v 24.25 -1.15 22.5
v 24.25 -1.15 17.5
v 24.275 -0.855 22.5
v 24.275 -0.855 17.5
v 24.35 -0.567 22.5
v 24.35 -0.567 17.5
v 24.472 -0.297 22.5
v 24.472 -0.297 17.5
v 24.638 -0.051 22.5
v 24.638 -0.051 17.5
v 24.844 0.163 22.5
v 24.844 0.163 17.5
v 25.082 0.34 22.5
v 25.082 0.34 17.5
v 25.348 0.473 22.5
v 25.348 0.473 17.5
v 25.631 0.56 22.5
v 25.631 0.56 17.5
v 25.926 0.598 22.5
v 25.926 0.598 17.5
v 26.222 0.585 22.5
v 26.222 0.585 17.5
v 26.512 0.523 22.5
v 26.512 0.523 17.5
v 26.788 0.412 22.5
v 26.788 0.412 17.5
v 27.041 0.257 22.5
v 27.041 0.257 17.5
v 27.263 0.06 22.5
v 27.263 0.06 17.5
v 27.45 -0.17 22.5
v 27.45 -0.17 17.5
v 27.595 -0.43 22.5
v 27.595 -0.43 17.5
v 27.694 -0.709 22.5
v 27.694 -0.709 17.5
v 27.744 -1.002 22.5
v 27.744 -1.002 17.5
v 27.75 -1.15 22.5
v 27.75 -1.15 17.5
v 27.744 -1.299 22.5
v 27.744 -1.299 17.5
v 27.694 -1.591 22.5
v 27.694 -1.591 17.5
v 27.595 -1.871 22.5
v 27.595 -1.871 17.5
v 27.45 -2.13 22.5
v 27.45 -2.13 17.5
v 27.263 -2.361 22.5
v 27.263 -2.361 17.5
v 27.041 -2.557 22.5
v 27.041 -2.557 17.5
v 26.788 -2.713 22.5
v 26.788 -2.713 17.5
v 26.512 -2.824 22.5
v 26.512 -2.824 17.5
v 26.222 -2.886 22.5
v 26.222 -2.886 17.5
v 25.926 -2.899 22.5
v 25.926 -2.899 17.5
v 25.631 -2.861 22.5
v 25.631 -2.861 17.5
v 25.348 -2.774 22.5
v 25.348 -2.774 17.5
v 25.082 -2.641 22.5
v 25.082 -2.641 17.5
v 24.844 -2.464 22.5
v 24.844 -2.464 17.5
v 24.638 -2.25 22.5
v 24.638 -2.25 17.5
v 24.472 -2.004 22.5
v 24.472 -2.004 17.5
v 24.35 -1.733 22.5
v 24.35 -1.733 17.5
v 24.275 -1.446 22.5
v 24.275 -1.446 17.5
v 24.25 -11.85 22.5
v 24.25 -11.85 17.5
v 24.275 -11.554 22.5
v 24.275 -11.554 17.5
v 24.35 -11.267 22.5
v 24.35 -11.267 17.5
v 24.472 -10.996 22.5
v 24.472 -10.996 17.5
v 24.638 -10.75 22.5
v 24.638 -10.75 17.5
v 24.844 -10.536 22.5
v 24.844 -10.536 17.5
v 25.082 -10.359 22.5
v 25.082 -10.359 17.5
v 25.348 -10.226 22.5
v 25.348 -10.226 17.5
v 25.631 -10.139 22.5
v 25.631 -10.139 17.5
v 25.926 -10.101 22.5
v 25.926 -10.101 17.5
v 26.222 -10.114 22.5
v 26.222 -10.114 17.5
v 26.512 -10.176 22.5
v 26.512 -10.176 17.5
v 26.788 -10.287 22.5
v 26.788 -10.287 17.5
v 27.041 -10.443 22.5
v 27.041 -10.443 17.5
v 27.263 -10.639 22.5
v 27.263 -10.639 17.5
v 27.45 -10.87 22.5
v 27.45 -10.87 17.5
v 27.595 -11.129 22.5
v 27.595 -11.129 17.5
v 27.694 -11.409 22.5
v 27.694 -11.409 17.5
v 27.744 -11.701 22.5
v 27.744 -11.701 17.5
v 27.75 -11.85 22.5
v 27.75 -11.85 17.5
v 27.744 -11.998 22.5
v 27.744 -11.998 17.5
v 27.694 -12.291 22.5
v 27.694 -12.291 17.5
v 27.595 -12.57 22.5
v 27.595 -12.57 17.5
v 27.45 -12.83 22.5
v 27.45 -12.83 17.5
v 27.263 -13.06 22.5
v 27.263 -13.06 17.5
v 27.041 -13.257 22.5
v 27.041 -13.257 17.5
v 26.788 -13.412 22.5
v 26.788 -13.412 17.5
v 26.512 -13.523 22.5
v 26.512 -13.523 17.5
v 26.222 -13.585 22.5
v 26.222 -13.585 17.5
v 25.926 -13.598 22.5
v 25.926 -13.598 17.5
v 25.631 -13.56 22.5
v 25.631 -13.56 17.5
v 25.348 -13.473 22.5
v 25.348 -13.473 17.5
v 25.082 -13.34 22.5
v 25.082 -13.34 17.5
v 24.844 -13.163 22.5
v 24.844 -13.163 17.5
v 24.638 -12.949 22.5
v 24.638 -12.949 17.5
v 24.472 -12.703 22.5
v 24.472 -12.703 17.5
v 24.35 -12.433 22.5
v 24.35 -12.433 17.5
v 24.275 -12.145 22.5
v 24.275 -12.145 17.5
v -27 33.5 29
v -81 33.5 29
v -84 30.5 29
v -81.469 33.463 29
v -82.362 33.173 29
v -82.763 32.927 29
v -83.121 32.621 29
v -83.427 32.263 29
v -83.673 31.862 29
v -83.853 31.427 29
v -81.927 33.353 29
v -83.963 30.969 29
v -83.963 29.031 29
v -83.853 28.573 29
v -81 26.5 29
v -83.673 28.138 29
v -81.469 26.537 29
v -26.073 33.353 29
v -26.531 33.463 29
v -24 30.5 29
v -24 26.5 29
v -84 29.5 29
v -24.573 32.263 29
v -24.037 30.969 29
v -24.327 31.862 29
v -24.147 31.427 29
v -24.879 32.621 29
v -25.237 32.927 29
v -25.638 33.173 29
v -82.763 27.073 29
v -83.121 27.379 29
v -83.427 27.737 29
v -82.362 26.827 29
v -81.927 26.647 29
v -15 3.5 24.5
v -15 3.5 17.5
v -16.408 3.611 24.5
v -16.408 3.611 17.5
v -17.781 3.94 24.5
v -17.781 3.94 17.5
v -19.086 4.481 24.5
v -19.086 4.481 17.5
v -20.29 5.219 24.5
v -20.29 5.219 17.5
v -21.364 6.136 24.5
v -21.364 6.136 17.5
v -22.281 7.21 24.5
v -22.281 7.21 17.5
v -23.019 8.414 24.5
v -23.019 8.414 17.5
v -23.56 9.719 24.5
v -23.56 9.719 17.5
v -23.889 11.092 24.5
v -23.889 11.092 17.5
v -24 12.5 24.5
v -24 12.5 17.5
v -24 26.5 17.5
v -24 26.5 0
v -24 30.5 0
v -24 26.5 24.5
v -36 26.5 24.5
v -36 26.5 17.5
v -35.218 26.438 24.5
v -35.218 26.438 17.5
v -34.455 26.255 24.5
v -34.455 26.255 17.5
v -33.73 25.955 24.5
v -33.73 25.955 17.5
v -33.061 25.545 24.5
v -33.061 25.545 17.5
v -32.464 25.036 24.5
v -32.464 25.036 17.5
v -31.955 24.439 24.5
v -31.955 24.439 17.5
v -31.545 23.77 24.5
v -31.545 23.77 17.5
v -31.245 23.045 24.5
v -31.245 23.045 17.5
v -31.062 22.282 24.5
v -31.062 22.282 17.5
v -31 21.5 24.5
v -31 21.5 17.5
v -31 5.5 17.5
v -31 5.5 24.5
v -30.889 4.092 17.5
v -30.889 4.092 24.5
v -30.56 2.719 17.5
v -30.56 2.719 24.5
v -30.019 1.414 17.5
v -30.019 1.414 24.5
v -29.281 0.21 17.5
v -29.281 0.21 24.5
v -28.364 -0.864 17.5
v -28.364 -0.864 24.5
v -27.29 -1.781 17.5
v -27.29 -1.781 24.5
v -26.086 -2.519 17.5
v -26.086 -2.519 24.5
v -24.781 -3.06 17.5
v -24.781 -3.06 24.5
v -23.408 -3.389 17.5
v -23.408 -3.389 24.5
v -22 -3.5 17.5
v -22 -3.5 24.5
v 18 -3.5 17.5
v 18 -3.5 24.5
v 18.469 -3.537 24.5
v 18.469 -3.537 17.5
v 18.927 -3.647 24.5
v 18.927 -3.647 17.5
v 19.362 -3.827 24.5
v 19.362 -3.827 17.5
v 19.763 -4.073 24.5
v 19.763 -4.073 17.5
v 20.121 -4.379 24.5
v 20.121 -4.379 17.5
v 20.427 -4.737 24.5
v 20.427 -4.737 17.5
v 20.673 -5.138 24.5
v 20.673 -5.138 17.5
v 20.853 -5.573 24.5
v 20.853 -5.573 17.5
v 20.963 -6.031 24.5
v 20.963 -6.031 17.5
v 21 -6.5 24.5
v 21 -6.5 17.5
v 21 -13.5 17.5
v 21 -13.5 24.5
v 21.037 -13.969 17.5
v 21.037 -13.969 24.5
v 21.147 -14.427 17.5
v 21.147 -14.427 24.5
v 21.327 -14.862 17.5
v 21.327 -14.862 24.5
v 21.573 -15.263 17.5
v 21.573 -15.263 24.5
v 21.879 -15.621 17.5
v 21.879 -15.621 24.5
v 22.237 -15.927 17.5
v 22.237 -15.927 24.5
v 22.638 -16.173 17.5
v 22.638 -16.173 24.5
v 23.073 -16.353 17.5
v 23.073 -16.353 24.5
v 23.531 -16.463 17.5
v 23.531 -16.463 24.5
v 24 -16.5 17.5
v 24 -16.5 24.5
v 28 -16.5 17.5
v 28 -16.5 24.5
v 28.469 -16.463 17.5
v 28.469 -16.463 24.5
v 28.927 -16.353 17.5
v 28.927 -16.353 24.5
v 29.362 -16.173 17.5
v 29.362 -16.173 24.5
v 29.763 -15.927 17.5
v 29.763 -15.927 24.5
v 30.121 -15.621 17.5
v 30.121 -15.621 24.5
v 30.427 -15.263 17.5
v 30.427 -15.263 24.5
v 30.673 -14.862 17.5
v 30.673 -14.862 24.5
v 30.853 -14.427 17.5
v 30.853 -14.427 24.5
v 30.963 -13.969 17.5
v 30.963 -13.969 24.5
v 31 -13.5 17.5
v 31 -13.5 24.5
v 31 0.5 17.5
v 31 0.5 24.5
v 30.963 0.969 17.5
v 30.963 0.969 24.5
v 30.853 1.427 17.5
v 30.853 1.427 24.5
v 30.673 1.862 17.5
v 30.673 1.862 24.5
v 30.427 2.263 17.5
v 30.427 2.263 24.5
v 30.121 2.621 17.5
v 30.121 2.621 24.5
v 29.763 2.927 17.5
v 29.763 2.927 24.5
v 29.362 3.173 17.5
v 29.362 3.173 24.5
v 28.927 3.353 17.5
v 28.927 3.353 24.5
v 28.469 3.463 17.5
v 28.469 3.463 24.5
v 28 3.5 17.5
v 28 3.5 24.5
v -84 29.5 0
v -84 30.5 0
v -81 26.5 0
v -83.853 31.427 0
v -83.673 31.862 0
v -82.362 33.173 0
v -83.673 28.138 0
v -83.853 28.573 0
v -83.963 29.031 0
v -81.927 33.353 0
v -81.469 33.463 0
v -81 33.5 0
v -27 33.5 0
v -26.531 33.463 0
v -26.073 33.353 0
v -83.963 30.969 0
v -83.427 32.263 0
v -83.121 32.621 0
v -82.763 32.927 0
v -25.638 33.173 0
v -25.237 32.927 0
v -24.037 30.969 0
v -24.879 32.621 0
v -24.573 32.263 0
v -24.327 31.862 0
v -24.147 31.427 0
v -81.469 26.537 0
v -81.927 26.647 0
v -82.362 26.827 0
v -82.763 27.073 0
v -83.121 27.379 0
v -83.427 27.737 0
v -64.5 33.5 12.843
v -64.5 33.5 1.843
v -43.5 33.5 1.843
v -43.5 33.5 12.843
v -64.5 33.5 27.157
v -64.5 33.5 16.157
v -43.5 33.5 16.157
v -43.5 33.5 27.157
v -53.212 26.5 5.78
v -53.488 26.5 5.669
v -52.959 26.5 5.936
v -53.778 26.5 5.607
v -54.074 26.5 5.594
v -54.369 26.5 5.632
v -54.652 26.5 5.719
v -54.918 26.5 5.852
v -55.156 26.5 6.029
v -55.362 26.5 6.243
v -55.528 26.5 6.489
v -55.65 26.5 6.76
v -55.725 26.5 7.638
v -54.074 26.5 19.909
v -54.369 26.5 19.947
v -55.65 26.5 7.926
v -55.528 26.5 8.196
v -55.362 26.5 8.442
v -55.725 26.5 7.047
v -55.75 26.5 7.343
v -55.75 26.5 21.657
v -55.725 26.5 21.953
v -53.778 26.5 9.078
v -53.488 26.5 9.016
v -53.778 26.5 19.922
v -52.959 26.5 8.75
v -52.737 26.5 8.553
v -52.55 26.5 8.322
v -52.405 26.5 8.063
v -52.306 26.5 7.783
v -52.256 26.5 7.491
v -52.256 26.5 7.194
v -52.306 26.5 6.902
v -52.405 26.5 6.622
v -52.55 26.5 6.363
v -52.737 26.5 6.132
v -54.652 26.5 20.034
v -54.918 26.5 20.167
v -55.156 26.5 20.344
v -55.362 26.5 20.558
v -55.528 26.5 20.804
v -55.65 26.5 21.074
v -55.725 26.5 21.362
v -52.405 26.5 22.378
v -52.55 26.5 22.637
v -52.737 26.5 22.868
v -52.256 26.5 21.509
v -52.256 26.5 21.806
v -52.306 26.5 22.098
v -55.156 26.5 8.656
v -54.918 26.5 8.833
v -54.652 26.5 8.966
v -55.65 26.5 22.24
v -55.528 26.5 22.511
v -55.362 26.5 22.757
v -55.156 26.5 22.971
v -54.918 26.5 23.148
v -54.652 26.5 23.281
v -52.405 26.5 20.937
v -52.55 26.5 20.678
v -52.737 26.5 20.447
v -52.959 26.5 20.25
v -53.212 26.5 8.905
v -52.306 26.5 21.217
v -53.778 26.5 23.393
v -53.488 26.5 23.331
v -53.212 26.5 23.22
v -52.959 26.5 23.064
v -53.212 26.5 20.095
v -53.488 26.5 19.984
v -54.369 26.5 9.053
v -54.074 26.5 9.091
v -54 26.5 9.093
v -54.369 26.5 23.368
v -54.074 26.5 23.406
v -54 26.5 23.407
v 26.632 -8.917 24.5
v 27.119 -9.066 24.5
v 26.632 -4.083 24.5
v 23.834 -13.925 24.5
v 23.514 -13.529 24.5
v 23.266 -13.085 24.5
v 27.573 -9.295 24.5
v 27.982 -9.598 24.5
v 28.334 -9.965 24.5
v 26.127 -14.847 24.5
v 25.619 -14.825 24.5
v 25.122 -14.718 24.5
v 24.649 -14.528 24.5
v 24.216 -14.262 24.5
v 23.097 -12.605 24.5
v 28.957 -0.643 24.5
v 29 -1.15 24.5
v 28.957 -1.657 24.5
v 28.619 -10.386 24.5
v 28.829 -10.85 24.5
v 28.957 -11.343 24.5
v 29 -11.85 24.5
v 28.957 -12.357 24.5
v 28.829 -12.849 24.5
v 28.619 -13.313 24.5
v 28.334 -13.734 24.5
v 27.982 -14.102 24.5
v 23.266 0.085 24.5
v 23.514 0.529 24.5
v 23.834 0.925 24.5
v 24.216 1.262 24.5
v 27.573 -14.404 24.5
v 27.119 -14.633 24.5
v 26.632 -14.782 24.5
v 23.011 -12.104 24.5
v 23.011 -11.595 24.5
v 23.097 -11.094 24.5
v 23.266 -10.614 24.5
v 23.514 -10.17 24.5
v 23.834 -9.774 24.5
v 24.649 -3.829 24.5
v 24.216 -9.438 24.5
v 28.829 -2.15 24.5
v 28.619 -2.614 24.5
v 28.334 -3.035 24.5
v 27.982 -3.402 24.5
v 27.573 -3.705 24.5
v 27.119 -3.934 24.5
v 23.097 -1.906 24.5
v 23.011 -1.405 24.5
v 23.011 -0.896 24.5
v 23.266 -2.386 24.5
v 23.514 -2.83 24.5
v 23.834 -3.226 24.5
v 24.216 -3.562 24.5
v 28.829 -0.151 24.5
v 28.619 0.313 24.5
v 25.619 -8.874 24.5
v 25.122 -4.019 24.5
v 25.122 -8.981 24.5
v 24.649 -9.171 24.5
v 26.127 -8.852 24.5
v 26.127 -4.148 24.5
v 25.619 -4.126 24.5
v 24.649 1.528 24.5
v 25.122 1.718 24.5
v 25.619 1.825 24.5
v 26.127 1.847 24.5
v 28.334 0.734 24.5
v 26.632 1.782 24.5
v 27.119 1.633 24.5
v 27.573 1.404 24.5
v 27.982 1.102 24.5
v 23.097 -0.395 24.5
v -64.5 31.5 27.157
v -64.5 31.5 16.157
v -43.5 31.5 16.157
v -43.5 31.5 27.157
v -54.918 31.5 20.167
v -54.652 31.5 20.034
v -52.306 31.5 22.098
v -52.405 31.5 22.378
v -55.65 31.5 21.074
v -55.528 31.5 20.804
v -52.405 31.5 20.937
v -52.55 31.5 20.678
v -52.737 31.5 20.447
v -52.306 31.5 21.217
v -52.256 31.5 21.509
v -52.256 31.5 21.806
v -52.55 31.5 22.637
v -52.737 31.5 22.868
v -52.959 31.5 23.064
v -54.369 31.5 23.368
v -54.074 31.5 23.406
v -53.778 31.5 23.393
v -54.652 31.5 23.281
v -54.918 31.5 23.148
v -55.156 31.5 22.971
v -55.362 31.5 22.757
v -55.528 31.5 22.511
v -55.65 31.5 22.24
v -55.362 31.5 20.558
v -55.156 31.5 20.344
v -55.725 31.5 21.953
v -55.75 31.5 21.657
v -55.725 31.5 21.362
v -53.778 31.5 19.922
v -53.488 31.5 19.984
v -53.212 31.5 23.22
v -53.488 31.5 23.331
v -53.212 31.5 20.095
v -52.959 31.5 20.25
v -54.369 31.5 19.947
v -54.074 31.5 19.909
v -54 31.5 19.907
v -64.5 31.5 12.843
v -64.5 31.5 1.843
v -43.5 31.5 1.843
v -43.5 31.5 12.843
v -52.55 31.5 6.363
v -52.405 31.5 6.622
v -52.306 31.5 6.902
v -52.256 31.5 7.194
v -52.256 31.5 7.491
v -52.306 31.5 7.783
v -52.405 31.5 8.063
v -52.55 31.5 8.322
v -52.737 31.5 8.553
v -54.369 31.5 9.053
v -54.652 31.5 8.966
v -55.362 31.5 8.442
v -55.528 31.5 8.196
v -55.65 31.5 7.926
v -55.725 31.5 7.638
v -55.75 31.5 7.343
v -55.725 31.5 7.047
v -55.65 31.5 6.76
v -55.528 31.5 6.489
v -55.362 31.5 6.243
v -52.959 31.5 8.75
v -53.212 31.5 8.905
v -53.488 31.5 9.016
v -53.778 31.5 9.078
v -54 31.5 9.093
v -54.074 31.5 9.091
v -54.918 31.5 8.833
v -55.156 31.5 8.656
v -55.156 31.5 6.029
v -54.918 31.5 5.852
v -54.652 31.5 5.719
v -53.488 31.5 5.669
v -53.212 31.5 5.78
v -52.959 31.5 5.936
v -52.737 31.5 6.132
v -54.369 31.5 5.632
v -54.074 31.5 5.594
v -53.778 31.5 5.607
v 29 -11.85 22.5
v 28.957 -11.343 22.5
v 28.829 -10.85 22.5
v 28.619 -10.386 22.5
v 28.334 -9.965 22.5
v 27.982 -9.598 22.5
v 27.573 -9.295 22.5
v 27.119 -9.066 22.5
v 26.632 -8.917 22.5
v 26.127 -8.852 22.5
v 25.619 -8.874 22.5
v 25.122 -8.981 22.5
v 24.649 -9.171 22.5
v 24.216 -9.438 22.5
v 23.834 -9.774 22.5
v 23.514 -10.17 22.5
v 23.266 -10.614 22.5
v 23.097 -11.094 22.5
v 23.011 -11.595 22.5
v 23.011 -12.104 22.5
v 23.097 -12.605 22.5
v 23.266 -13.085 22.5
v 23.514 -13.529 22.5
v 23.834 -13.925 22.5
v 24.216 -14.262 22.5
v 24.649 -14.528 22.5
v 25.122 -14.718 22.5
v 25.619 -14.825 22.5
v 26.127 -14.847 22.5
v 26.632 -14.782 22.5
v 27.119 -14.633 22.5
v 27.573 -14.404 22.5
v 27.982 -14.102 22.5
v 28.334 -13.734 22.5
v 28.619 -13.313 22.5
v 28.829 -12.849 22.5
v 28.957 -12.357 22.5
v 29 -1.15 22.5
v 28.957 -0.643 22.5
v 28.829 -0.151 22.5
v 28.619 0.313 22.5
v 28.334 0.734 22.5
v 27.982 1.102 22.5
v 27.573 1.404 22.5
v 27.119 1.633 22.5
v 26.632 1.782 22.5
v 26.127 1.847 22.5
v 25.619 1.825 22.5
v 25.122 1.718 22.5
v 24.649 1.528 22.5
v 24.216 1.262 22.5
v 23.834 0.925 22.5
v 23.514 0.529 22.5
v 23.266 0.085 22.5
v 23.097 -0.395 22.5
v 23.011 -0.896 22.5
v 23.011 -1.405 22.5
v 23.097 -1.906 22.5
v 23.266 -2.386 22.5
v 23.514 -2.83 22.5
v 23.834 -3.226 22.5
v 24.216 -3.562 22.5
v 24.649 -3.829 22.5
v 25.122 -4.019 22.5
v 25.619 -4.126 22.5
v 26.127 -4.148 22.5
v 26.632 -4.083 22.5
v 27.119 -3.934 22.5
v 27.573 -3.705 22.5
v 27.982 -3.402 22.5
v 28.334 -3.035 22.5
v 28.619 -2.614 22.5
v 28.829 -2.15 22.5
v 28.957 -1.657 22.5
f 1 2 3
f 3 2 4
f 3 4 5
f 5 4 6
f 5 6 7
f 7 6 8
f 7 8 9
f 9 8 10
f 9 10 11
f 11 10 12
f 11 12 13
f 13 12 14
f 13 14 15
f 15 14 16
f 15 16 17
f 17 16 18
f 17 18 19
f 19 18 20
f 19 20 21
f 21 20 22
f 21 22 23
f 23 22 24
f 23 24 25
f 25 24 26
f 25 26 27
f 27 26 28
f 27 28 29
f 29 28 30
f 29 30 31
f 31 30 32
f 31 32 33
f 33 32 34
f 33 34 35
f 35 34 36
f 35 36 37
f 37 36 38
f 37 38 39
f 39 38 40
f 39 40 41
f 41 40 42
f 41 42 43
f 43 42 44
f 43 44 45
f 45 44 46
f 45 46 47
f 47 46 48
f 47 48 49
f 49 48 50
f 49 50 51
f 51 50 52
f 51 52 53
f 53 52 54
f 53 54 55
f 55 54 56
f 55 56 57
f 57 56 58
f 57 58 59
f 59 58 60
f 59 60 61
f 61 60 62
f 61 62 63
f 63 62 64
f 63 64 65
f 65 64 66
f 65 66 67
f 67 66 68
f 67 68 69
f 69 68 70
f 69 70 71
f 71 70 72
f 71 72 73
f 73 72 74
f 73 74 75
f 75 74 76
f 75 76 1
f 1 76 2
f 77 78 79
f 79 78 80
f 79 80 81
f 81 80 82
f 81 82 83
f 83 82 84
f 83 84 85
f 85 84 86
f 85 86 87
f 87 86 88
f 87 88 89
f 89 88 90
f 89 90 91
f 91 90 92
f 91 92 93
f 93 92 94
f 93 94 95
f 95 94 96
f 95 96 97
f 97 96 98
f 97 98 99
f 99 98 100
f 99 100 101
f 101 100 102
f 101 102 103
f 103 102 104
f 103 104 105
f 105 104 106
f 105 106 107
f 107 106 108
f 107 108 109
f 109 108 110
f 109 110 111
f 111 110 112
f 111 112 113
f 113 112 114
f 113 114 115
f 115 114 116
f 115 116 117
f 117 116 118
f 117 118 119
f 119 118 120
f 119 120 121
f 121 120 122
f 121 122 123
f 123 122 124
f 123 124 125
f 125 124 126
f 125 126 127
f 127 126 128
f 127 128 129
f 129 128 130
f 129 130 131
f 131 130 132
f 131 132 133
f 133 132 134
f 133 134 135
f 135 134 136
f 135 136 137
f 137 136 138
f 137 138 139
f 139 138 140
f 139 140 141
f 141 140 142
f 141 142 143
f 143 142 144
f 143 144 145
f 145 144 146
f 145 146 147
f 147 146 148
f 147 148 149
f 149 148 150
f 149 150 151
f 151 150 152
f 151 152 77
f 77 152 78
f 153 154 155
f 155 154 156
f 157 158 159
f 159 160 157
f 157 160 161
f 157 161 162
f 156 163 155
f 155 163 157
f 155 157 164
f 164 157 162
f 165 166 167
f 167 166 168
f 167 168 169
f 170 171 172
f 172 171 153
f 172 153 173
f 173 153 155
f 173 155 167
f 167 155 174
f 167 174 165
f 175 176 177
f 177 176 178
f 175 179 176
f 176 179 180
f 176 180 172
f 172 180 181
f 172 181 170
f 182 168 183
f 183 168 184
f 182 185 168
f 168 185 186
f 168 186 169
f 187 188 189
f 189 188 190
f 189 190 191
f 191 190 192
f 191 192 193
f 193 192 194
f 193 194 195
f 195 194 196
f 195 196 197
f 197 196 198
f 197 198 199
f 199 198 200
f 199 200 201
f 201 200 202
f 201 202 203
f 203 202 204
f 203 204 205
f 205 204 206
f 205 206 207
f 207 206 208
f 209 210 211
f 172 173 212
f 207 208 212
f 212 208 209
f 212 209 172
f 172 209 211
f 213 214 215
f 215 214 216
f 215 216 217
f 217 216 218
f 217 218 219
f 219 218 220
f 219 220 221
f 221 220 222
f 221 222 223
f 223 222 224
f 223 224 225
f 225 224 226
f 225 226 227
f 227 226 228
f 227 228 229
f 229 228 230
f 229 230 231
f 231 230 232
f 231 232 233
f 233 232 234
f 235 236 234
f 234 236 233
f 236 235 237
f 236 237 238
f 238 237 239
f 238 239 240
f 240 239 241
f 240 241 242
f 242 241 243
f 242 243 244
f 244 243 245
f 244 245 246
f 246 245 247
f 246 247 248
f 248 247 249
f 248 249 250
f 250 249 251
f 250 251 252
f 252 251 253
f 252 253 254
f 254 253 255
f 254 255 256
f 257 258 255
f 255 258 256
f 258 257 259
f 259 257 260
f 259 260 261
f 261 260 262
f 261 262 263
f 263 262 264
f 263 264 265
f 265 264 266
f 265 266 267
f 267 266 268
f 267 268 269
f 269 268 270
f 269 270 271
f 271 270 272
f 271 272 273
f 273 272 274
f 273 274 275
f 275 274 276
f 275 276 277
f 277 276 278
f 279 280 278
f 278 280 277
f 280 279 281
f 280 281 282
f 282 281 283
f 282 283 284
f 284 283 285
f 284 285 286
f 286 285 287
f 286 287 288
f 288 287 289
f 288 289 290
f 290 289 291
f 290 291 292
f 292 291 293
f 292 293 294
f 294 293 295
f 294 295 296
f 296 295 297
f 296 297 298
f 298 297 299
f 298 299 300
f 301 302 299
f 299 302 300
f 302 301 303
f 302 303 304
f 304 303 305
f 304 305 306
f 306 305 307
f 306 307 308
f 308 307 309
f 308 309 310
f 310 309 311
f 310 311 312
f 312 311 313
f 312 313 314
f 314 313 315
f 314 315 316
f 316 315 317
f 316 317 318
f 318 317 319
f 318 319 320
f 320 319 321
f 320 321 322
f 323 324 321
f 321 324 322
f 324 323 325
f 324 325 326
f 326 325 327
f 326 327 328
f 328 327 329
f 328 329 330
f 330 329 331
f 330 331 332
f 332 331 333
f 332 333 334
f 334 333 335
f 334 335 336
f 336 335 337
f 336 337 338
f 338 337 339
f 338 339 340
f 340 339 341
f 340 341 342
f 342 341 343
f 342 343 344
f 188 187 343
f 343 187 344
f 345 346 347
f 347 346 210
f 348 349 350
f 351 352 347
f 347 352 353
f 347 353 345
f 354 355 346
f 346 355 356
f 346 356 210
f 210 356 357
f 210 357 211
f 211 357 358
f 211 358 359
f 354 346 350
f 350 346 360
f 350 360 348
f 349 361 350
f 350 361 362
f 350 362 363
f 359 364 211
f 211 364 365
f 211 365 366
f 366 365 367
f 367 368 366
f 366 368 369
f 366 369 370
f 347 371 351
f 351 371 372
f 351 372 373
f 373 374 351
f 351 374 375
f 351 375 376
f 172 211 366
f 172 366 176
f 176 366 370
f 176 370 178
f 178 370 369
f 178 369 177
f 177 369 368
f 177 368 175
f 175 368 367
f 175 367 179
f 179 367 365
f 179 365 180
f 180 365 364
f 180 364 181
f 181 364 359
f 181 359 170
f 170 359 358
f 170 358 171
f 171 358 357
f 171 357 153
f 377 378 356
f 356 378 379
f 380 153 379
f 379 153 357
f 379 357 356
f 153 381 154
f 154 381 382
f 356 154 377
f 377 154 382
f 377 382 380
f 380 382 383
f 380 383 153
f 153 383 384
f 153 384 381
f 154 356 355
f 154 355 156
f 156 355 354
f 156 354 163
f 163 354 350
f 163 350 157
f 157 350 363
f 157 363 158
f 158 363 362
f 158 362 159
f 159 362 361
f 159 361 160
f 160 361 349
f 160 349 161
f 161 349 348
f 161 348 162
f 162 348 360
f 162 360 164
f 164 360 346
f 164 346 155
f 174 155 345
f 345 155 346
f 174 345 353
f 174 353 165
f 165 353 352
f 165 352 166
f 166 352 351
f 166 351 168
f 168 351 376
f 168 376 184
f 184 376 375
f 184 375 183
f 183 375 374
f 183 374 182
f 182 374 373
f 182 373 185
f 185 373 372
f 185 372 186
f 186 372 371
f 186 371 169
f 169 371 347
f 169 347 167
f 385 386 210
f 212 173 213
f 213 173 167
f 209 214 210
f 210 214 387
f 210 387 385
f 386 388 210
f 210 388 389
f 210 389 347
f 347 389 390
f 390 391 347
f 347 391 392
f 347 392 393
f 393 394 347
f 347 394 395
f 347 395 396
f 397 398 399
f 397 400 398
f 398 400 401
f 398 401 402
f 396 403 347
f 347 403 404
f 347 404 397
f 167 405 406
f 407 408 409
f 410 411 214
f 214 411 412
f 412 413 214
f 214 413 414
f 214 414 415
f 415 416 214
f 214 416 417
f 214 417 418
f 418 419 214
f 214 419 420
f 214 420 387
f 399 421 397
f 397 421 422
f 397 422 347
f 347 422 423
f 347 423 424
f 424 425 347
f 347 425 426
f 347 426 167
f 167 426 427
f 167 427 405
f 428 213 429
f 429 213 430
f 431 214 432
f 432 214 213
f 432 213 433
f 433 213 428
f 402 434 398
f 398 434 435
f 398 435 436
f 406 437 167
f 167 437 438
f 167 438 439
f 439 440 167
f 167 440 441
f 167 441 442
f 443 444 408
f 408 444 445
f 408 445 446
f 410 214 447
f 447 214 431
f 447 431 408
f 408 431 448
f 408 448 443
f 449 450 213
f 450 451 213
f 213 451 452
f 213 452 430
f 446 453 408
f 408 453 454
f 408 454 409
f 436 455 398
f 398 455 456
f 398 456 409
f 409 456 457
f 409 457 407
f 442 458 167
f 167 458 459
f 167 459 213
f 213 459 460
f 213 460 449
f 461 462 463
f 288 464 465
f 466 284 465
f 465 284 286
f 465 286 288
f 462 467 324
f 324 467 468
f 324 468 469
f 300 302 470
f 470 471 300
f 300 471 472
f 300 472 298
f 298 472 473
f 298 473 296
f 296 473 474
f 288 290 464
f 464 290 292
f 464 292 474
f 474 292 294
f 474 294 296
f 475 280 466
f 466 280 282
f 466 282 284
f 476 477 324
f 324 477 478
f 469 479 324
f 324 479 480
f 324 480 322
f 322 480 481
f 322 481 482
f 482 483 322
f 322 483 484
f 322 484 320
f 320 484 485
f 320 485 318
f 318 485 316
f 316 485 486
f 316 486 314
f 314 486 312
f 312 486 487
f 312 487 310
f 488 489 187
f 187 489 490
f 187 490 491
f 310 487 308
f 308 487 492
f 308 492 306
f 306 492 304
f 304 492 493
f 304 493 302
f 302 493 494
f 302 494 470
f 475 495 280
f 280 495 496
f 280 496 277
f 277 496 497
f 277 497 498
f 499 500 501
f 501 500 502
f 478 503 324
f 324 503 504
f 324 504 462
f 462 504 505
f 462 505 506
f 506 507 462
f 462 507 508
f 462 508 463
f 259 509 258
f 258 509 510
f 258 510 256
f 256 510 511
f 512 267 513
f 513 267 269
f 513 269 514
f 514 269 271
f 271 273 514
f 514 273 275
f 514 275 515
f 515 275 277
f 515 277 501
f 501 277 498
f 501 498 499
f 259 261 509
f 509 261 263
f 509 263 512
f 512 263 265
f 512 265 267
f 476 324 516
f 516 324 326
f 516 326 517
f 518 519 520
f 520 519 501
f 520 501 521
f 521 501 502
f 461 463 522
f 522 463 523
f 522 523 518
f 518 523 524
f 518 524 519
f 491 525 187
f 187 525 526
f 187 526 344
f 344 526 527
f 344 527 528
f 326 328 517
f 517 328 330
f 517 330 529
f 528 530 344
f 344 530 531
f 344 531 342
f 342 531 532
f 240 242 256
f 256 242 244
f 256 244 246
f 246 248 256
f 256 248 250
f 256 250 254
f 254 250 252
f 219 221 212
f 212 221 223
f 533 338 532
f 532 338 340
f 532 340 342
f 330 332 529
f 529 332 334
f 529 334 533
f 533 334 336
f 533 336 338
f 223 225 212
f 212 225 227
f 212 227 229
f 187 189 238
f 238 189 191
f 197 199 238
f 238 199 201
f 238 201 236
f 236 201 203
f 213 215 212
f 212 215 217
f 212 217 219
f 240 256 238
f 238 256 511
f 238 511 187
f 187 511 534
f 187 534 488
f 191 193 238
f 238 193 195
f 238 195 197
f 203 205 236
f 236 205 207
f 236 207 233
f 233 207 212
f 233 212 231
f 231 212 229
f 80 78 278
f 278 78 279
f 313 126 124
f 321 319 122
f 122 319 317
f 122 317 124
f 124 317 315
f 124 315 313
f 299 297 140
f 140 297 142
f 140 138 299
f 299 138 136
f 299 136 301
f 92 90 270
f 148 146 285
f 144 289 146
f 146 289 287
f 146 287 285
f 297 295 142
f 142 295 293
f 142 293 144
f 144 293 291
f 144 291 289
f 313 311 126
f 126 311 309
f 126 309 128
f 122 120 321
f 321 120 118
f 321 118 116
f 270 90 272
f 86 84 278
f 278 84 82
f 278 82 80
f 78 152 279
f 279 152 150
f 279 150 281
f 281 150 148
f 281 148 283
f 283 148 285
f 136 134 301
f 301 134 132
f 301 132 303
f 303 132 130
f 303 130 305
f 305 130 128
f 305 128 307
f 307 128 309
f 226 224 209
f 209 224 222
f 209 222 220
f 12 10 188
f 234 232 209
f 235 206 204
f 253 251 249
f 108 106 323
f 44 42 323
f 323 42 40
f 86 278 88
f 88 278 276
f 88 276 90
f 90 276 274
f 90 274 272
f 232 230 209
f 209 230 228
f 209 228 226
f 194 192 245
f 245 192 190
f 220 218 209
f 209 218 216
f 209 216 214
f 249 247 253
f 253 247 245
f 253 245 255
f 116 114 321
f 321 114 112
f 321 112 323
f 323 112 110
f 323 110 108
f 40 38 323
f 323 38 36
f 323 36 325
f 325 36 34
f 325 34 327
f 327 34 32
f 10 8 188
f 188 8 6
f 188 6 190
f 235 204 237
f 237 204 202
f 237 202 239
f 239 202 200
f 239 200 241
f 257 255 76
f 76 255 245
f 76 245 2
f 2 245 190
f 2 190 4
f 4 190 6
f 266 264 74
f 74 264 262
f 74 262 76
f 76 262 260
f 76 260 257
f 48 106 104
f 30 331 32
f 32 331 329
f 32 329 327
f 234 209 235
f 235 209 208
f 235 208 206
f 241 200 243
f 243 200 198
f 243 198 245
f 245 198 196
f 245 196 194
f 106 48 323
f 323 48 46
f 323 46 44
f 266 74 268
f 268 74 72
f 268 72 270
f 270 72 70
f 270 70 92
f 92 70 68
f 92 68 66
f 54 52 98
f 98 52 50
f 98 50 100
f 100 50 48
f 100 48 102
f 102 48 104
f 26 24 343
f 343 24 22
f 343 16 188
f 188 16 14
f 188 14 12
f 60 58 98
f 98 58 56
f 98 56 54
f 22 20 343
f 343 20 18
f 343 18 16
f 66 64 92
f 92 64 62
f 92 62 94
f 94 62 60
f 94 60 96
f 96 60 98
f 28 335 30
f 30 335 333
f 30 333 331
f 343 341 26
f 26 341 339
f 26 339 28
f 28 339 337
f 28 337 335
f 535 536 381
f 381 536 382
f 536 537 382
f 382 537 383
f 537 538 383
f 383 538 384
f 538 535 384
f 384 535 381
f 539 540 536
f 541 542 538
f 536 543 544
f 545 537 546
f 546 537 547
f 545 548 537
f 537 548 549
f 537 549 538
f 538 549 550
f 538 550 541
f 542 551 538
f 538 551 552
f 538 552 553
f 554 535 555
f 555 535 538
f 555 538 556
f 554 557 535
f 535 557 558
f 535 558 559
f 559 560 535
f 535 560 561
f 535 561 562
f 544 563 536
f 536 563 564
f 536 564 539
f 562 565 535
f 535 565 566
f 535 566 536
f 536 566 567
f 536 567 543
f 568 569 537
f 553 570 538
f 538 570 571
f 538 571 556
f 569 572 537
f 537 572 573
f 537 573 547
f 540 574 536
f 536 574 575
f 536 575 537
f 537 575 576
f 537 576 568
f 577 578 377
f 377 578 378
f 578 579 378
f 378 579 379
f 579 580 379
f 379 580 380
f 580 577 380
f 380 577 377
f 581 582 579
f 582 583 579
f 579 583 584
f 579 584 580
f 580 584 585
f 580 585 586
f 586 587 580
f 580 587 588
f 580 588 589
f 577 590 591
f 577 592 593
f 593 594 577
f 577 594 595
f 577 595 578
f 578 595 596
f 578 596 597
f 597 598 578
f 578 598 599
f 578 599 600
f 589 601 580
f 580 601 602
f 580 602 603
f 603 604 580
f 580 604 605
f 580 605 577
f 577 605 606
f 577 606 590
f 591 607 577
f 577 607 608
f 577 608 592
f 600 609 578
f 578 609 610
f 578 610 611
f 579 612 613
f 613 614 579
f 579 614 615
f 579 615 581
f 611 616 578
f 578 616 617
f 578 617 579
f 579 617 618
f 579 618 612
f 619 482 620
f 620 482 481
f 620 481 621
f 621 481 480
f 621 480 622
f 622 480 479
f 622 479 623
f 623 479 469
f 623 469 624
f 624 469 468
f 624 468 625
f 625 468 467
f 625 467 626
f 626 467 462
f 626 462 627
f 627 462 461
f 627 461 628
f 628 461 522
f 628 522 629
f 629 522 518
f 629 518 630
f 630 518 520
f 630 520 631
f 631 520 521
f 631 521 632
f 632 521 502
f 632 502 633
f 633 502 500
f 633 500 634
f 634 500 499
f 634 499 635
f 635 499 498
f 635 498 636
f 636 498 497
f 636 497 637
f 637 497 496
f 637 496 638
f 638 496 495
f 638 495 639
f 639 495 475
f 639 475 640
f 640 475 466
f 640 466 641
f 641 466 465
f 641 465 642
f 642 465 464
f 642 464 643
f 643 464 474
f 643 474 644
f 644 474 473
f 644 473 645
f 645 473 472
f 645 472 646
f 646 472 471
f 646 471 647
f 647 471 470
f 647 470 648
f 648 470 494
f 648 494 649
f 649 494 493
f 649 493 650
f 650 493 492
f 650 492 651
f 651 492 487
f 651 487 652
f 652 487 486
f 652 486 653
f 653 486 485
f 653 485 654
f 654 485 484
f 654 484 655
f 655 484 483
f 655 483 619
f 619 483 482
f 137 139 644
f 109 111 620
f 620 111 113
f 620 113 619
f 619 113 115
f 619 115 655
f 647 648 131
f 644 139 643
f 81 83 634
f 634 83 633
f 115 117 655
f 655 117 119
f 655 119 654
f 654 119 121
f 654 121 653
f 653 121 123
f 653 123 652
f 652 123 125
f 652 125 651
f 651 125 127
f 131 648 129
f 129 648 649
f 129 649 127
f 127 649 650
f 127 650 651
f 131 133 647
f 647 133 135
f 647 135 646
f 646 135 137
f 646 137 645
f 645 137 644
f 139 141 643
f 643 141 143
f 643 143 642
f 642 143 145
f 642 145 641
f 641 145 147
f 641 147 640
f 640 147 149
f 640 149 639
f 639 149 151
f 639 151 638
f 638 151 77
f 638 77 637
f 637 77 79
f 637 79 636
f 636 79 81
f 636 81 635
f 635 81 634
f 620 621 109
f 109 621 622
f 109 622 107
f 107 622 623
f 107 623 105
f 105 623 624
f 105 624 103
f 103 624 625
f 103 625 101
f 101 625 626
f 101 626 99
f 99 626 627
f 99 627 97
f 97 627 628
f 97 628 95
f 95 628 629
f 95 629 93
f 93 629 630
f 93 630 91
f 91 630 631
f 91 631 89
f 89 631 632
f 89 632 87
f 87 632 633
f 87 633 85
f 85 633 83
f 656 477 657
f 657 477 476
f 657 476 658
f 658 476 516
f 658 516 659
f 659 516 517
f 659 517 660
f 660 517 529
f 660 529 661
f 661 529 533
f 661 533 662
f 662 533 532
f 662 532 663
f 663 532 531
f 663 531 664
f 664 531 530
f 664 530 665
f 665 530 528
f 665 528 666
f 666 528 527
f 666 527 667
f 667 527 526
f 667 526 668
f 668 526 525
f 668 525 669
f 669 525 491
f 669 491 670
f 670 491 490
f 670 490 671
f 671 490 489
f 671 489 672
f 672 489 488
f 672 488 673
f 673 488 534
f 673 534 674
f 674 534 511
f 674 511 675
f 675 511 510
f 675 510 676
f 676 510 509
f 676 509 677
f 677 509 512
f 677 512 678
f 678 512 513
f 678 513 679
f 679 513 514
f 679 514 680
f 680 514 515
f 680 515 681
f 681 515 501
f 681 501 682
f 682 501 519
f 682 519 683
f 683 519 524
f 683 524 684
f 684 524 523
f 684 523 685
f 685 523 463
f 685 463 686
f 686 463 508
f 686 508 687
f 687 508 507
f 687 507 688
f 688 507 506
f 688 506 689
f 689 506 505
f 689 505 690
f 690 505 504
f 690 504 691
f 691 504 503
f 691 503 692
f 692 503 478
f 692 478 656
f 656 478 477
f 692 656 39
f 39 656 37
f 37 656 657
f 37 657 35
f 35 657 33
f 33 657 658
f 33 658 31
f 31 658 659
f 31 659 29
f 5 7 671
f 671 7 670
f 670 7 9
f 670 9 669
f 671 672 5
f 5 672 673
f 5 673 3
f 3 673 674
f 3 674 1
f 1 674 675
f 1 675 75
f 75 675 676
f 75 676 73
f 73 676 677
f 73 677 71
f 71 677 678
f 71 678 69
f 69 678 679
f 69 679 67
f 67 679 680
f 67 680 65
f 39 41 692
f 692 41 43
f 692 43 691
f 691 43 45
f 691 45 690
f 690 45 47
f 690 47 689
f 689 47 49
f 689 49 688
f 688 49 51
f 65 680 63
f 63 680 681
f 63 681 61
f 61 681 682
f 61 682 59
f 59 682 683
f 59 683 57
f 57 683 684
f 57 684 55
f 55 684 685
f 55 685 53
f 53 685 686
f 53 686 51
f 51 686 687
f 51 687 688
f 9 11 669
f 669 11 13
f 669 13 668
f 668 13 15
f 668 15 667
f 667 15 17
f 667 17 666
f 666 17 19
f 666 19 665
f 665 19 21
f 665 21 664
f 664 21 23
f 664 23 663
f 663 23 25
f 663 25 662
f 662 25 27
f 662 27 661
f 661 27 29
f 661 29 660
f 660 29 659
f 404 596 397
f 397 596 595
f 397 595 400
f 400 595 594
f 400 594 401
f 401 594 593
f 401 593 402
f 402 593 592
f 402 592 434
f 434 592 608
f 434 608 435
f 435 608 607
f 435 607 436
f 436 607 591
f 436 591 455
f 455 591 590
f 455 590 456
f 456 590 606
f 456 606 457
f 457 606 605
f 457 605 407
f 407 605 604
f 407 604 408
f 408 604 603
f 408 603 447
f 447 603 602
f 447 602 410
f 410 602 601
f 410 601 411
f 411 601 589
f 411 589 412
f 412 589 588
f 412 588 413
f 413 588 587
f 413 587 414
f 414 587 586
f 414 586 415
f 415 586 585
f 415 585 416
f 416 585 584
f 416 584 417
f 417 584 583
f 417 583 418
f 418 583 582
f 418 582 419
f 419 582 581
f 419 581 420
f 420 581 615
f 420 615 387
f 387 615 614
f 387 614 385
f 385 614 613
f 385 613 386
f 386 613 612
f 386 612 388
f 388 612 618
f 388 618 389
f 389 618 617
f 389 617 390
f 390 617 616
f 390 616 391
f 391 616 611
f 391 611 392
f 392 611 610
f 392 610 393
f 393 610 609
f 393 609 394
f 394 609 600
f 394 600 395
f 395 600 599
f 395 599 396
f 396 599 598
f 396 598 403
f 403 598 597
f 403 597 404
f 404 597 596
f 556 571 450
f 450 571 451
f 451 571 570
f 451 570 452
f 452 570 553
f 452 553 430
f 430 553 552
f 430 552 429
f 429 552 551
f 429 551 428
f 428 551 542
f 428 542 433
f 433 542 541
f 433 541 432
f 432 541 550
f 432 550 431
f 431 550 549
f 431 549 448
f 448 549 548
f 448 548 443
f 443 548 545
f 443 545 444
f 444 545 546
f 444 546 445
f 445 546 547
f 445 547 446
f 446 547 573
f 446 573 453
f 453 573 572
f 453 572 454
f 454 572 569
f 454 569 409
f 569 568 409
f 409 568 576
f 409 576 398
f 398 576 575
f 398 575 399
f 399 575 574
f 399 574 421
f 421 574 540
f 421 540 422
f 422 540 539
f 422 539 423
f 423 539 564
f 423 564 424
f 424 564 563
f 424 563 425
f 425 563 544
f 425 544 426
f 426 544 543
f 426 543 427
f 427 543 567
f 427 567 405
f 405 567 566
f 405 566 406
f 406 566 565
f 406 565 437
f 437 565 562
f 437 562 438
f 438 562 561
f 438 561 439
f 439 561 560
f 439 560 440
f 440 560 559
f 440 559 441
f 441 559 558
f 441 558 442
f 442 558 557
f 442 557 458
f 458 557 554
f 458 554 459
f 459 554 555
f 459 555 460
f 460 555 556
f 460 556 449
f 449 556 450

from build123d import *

# Parameters (mm, degrees)
SKIZZE1_R                       = 1.75
AUFSATZ_LINEAR_AUSTRAGEN1_DEPTH = 29
SKIZZE2_W                       = 95.177468056
SKIZZE2_H                       = 43
SCHNITT_LINEAR_AUSTRAGEN1_DEPTH = 29
SKIZZE5_W                       = 102.378587485
SKIZZE5_H                       = 44.26226899
SCHNITT_LINEAR_AUSTRAGEN2_DEPTH = 29
SKIZZE6_W                       = 21
SKIZZE6_H                       = 11
SCHNITT_LINEAR_AUSTRAGEN3_DEPTH = 2
SKIZZE7_R                       = 3
SCHNITT_LINEAR_AUSTRAGEN4_DEPTH = 2
SKIZZE8_R                       = 1.75
SCHNITT_LINEAR_AUSTRAGEN5_DEPTH = 102.965680501


with BuildPart() as part:
    # Skizze1 → Aufsatz-Linear austragen1 (new body)
    with BuildSketch(Plane.XY):
        with BuildLine():
            Line((31, -13.5), (31, 0.5))
            ThreePointArc((31, 0.5), (30.121320344, 2.621320344), (28, 3.5))
            Line((28, 3.5), (-15, 3.5))
            ThreePointArc((-15, 3.5), (-21.363961031, 6.136038969), (-24, 12.5))
            Line((-24, 12.5), (-24, 30.5))
            ThreePointArc((-24, 30.5), (-24.878679656, 32.621320344), (-27, 33.5))
            Line((-27, 33.5), (-81, 33.5))
            ThreePointArc((-81, 33.5), (-83.121320344, 32.621320344), (-84, 30.5))
            Line((-84, 30.5), (-84, 29.5))
            ThreePointArc((-84, 29.5), (-83.121320344, 27.378679656), (-81, 26.5))
            Line((-81, 26.5), (-36, 26.5))
            ThreePointArc((-36, 26.5), (-32.464466094, 25.035533906), (-31, 21.5))
            Line((-31, 21.5), (-31, 5.5))
            ThreePointArc((-31, 5.5), (-28.363961031, -0.863961031), (-22, -3.5))
            Line((-22, -3.5), (18, -3.5))
            ThreePointArc((18, -3.5), (20.121320344, -4.378679656), (21, -6.5))
            Line((21, -6.5), (21, -13.5))
            ThreePointArc((21, -13.5), (21.878679656, -15.621320344), (24, -16.5))
            Line((24, -16.5), (28, -16.5))
            ThreePointArc((28, -16.5), (30.121320344, -15.621320344), (31, -13.5))
        make_face()
        with Locations(Location((26, -1.150447614, 0), (0, 0, 180))):
            Circle(SKIZZE1_R, mode=Mode.SUBTRACT)
        with Locations(Location((26, -11.849552386, 0), (0, 0, 180))):
            Circle(SKIZZE1_R, mode=Mode.SUBTRACT)
    extrude(amount=AUFSATZ_LINEAR_AUSTRAGEN1_DEPTH)

    # Skizze2 → Schnitt-Linear austragen1 (cut)
    with BuildSketch(Plane.XY.offset(24.5)):
        with Locations((-3.395581908, 5)):
            Rectangle(SKIZZE2_W, SKIZZE2_H)
    extrude(amount=SCHNITT_LINEAR_AUSTRAGEN1_DEPTH, mode=Mode.SUBTRACT)

    # Skizze5 → Schnitt-Linear austragen2 (cut)
    with BuildSketch(Plane.XY.offset(17.5)):
        with Locations((-5.60029533, 4.368865505)):
            Rectangle(SKIZZE5_W, SKIZZE5_H)
    extrude(amount=-SCHNITT_LINEAR_AUSTRAGEN2_DEPTH, mode=Mode.SUBTRACT)

    # Skizze6 → Schnitt-Linear austragen3 (cut)
    with BuildSketch(Plane(origin=(0, 33.5, 0), x_dir=(1, 0, 0), z_dir=(0, 1, 0))):
        with Locations((-54, -7.342518692)):
            Rectangle(SKIZZE6_W, SKIZZE6_H)
        with Locations((-54, -21.657481308)):
            Rectangle(SKIZZE6_W, SKIZZE6_H)
    extrude(amount=-SCHNITT_LINEAR_AUSTRAGEN3_DEPTH, mode=Mode.SUBTRACT)

    # Skizze7 → Schnitt-Linear austragen4 (cut)
    with BuildSketch(Plane.XY.offset(24.5)):
        with Locations((26, -1.150447614)):
            Circle(SKIZZE7_R)
        with Locations((26, -11.849552386)):
            Circle(SKIZZE7_R)
    extrude(amount=-SCHNITT_LINEAR_AUSTRAGEN4_DEPTH, mode=Mode.SUBTRACT)

    # Skizze8 → Schnitt-Linear austragen5 (cut, through all)
    with BuildSketch(Plane(origin=(0, 33.5, 0), x_dir=(1, 0, 0), z_dir=(0, 1, 0))):
        with Locations(Location((-54, -7.342518692, 0), (0, 0, 270))):
            Circle(SKIZZE8_R)
        with Locations(Location((-54, -21.657481308, 0), (0, 0, 90))):
            Circle(SKIZZE8_R)
    extrude(amount=-SCHNITT_LINEAR_AUSTRAGEN5_DEPTH, mode=Mode.SUBTRACT)


solid = part.part
